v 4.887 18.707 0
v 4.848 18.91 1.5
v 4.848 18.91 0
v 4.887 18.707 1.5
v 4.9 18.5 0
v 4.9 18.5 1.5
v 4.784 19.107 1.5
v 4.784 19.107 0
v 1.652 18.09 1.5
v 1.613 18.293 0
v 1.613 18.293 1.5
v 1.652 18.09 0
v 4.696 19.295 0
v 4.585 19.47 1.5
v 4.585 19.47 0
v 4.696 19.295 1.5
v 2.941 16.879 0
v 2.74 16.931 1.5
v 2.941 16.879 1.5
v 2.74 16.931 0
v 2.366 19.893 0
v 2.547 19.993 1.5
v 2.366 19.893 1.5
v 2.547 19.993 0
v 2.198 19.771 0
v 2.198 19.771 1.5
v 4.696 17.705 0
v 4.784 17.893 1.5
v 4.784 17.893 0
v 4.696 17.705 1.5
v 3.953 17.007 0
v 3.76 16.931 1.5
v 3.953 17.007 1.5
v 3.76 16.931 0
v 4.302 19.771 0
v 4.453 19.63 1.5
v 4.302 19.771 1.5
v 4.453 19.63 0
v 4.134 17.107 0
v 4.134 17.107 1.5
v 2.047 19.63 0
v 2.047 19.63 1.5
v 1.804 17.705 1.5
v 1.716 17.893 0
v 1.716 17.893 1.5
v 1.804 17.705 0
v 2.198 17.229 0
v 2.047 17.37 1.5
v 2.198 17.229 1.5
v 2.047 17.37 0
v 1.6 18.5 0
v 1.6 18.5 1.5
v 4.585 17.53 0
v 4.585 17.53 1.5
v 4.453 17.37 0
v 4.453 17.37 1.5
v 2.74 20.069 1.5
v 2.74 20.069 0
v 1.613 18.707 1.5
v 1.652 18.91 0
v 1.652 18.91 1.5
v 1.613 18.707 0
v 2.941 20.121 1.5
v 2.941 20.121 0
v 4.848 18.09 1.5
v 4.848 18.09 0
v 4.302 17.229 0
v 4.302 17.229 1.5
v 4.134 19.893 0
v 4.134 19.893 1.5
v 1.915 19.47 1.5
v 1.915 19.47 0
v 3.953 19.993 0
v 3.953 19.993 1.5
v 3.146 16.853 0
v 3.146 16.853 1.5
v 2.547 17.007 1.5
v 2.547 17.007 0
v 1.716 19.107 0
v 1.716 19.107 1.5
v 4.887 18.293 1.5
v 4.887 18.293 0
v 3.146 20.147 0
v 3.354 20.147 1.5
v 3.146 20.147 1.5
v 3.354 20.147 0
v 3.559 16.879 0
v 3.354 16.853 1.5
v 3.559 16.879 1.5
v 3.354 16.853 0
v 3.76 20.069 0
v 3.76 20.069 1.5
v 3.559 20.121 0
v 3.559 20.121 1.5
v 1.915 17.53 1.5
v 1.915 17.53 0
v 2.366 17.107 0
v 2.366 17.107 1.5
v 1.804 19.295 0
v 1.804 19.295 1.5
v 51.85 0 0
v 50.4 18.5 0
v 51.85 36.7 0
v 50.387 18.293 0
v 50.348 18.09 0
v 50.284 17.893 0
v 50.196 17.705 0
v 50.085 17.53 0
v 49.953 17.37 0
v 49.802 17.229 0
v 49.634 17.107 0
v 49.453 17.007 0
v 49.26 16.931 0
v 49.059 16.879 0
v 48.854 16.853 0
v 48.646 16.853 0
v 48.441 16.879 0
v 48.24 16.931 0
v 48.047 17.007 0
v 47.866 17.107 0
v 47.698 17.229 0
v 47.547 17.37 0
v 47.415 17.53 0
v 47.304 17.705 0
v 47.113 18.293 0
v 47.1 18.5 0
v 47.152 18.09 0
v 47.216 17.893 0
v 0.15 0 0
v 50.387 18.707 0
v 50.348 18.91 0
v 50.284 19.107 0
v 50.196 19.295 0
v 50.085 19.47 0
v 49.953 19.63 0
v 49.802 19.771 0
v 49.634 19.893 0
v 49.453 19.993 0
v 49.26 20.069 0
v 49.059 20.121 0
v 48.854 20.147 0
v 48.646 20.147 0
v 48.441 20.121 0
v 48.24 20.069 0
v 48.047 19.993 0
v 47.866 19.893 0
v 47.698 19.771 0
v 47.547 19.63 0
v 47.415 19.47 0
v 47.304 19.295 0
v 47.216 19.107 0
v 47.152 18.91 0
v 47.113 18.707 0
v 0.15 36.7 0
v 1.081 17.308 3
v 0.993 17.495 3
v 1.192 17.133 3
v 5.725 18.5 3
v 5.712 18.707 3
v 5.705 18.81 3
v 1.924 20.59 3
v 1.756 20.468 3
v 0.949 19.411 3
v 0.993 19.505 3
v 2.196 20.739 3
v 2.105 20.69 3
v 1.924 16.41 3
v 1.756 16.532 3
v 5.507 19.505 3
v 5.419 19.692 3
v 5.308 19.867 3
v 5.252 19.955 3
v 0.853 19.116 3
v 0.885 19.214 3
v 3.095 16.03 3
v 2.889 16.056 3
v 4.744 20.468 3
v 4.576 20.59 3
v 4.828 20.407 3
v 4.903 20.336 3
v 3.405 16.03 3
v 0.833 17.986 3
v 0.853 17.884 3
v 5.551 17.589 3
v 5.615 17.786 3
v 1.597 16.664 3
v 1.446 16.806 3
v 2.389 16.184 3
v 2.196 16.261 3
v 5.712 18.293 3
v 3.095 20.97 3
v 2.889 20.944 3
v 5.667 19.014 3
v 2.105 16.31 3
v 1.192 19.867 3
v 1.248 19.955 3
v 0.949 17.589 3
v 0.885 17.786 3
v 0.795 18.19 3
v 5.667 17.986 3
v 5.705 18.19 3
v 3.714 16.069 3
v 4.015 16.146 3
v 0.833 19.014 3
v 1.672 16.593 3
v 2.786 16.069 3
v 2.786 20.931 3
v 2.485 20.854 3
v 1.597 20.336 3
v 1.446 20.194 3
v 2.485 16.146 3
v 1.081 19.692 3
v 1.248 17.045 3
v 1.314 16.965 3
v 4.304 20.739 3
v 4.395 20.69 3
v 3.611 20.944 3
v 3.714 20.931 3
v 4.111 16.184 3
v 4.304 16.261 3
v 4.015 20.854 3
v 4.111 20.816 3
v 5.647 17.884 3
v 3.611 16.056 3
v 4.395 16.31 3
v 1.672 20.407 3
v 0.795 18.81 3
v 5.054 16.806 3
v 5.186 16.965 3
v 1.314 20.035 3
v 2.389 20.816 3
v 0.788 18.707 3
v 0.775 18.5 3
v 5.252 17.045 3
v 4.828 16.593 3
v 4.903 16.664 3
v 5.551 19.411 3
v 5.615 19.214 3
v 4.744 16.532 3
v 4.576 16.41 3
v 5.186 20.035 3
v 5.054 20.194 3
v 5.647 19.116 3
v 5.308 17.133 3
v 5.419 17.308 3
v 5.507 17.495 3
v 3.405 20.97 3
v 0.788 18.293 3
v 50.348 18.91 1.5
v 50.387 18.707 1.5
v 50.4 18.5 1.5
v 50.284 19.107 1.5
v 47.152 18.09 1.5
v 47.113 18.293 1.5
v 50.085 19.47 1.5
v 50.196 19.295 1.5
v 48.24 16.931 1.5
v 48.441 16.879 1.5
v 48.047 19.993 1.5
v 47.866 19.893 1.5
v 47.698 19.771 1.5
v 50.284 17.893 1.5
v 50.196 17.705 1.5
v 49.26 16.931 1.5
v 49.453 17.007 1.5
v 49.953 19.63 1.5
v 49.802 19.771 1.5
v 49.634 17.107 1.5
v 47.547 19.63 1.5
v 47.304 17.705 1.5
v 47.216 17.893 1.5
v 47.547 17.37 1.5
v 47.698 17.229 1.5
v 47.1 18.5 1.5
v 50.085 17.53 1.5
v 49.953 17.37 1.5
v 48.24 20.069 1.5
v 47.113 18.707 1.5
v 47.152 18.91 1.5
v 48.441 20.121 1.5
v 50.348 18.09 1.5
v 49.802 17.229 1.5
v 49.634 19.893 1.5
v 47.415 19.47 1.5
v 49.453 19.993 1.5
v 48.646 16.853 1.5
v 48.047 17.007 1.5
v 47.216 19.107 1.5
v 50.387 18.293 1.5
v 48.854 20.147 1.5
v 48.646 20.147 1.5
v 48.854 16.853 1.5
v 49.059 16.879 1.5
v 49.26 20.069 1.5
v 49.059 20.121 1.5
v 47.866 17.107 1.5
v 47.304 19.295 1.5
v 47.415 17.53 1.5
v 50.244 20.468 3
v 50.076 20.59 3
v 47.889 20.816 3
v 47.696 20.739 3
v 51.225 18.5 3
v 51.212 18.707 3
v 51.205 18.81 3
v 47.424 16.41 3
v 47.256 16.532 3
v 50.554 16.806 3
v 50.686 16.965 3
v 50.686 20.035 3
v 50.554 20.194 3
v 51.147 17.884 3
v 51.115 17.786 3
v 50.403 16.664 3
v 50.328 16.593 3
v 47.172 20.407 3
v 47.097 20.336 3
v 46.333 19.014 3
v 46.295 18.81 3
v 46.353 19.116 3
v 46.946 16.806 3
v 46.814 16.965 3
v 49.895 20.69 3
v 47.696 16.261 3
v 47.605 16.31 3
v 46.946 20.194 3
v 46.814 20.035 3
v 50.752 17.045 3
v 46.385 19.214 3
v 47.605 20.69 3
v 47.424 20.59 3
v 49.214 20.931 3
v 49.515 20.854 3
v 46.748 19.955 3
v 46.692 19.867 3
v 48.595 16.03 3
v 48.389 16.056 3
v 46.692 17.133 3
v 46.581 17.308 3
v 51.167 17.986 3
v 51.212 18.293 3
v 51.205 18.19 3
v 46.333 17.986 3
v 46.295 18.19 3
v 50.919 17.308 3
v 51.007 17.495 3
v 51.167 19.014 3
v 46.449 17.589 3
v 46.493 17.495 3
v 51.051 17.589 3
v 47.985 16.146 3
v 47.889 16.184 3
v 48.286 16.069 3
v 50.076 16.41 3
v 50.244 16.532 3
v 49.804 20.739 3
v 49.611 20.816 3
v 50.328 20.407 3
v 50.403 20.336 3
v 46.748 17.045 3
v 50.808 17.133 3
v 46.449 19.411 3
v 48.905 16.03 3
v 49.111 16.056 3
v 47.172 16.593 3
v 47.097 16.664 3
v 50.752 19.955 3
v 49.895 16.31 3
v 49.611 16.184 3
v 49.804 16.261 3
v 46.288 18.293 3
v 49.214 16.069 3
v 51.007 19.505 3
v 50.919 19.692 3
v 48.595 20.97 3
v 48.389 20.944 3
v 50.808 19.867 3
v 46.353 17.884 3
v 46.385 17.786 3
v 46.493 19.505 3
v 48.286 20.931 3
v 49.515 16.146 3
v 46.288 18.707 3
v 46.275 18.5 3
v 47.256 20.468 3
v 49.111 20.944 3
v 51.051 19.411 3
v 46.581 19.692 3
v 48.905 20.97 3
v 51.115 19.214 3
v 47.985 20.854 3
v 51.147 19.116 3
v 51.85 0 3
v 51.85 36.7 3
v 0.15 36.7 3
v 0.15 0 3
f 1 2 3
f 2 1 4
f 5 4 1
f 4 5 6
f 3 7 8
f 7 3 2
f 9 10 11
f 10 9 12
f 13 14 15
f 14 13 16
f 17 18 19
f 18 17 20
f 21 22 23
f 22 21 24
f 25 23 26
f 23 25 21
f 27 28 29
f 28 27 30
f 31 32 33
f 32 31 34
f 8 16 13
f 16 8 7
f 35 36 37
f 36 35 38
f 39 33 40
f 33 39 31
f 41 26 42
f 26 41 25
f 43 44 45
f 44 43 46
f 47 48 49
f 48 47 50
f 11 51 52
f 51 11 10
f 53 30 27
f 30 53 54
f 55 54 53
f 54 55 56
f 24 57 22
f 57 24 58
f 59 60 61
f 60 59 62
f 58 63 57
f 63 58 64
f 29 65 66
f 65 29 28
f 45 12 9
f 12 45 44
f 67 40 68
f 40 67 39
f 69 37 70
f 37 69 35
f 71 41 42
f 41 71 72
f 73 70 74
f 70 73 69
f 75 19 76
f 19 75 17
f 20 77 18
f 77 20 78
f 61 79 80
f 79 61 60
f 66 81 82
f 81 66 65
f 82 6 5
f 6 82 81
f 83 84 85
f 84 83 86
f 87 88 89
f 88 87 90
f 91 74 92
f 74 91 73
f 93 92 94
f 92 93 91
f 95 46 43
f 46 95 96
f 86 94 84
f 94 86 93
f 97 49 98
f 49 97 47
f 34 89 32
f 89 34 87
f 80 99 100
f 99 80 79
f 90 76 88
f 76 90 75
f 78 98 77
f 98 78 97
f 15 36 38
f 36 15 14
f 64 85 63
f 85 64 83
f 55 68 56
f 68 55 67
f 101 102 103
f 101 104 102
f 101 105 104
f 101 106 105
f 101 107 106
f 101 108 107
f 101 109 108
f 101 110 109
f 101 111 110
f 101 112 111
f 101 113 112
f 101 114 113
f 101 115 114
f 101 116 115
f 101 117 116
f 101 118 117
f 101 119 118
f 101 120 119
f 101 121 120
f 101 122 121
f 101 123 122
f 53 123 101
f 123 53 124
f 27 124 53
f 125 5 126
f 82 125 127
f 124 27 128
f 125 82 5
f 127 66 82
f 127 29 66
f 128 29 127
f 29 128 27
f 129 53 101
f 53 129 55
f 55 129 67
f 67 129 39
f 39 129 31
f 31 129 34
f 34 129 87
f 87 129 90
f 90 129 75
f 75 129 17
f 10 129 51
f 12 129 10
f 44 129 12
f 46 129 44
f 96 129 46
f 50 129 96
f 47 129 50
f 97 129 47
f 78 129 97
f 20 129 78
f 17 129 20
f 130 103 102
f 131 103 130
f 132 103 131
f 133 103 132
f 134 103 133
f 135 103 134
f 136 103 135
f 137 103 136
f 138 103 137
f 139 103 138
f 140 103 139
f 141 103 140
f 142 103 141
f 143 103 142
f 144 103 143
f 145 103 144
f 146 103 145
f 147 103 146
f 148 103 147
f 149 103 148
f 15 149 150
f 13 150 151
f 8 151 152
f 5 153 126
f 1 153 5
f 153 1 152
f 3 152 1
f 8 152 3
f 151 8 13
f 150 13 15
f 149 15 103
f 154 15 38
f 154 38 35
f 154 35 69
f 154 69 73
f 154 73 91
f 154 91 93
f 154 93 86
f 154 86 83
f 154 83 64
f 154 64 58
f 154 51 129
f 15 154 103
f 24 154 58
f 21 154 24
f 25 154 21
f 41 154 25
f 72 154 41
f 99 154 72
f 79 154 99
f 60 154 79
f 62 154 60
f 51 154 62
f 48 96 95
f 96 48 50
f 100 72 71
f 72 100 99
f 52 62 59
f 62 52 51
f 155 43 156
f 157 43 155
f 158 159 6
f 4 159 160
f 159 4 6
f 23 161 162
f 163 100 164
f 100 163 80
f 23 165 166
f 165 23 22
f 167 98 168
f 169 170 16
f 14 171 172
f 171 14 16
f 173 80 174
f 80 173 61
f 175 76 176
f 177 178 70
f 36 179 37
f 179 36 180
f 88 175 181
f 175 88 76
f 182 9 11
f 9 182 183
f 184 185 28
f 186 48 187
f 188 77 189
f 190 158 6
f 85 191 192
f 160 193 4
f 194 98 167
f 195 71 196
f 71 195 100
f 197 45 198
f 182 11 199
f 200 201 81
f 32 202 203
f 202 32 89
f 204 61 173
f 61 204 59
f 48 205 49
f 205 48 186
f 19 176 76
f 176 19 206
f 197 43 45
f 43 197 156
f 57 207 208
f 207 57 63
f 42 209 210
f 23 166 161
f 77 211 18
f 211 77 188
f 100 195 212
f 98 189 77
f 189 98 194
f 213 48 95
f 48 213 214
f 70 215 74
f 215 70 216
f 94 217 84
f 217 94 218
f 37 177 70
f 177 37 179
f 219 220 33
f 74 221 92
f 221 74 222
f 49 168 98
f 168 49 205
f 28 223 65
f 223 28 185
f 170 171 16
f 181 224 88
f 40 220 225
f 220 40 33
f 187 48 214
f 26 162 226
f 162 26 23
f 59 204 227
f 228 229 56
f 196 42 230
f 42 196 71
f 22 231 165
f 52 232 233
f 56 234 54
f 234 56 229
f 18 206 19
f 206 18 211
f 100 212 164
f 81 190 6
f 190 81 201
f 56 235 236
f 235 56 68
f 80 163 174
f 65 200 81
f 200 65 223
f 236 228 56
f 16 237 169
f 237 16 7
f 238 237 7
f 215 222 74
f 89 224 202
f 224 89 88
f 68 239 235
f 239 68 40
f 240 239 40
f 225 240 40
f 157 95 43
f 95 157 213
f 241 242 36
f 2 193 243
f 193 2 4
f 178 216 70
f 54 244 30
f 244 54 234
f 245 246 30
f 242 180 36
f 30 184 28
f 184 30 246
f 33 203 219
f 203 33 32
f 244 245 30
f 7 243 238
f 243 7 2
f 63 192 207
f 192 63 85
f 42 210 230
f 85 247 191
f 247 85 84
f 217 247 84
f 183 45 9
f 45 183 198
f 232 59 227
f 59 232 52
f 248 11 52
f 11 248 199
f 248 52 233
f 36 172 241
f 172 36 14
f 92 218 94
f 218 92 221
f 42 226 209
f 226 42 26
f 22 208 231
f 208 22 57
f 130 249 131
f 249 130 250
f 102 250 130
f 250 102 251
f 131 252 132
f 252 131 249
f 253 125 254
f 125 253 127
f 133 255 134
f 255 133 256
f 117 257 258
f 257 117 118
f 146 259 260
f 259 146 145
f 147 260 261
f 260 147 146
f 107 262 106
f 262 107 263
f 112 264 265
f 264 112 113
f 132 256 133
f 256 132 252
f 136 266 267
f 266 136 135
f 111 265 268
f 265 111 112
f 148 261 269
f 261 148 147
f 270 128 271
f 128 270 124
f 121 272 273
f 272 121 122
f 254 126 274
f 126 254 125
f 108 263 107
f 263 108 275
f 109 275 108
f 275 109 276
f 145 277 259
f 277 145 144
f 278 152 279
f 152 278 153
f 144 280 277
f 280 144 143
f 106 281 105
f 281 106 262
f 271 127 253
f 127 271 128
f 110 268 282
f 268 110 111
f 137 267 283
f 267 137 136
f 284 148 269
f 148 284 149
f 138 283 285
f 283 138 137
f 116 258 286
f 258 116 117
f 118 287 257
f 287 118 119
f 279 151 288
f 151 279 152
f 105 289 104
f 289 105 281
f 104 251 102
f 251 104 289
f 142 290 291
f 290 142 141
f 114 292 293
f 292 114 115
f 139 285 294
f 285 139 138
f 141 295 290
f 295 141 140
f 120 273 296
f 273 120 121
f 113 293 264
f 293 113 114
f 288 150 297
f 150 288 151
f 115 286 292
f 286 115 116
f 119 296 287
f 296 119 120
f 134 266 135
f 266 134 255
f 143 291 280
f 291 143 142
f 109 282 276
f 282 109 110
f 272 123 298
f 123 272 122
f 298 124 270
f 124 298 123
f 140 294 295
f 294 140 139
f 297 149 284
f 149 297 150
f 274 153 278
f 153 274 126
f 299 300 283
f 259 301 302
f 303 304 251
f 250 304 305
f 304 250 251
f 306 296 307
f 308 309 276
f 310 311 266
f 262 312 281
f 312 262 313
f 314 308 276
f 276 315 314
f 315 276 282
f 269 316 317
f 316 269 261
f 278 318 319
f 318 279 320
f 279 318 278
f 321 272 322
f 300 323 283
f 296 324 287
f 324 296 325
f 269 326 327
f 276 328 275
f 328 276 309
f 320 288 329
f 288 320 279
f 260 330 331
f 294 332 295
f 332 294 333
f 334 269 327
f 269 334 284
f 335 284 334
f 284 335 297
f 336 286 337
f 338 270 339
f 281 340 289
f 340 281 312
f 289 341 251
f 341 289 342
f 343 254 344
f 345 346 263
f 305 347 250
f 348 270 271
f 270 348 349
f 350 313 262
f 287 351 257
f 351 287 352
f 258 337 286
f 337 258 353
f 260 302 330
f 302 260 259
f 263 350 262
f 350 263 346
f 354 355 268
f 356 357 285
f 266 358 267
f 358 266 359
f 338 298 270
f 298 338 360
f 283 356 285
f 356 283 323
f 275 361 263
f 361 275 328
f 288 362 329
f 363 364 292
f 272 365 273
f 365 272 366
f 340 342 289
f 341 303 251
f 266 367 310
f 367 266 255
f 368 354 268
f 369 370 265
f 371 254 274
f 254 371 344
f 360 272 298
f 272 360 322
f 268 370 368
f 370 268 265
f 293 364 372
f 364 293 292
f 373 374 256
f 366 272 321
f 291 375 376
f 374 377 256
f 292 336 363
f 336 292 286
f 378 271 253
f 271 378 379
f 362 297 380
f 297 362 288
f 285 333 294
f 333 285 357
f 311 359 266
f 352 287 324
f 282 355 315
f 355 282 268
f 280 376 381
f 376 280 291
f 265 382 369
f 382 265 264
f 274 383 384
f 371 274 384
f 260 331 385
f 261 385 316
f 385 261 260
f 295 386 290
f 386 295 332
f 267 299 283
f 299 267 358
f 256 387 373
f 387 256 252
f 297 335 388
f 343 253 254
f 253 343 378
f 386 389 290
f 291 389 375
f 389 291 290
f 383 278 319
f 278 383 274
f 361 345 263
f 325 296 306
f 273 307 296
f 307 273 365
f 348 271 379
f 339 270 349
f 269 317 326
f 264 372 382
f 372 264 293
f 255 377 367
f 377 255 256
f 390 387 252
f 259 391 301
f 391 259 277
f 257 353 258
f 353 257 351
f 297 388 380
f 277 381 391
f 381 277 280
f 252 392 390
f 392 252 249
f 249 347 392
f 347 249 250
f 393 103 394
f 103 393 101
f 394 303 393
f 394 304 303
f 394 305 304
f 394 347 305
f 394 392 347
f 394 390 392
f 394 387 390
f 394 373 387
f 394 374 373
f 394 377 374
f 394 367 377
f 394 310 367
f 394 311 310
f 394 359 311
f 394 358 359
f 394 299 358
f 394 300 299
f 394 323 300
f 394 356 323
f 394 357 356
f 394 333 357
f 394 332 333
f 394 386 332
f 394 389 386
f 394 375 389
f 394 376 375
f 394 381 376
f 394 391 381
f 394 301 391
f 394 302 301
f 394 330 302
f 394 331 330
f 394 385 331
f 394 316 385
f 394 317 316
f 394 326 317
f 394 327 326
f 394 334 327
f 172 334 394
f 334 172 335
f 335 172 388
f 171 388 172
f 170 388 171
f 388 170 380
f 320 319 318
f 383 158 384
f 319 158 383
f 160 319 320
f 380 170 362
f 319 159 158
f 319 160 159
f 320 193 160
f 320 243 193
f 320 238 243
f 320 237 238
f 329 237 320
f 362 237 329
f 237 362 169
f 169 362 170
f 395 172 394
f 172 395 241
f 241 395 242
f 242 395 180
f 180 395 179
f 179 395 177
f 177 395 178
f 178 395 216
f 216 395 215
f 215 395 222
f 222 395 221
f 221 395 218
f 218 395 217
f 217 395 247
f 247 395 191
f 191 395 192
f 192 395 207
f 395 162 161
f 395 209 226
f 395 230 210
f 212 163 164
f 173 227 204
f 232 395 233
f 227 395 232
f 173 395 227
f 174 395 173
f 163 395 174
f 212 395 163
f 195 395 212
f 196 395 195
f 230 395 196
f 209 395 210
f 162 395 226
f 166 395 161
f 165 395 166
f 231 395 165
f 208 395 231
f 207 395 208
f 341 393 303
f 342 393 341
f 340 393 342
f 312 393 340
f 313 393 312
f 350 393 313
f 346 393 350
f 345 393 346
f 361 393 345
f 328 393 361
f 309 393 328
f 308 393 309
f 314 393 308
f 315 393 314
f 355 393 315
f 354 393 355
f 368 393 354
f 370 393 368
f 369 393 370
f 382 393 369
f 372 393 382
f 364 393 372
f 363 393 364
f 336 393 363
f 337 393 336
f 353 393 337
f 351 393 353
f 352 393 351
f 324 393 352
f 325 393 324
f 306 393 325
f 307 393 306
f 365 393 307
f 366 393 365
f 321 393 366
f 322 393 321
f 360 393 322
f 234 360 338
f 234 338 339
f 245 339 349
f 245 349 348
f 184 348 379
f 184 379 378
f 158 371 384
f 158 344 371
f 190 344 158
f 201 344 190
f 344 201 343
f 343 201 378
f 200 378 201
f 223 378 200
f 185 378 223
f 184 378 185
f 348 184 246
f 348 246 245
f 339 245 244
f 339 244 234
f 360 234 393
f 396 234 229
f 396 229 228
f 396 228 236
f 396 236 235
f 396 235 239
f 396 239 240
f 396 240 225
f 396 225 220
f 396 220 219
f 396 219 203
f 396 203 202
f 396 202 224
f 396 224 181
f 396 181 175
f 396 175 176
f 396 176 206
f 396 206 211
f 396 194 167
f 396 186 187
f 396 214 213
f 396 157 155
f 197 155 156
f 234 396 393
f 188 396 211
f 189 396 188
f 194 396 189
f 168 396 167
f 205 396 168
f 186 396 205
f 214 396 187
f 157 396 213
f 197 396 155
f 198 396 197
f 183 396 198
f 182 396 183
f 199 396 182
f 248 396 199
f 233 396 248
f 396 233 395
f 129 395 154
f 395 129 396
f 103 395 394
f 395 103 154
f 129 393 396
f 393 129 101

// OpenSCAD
// file: global_constants.scad
$fn=50;

// Body
body_size=140;
body_size_diff=30;
cylinder_radius=15;
body_height=15;

wall_size=4;
wall_size_offset_x= (body_size*(wall_size/100))/2;
wall_size_offset_y= ((body_size+cylinder_radius)*(wall_size/100))/2;

// Anchors
anchor_outer_size=4.5;
anchor_inner_size=2.5;

anchor_inner_size_margin=0.4;

anchor_height=7;
anchor_height_margin=2;

anchor_top_y=-38;
anchor_bottom_y=-125;

body_left_anchor_x = -cylinder_radius + anchor_outer_size + anchor_outer_size - anchor_inner_size;

body_right_anchor_x = body_size + cylinder_radius - (anchor_outer_size + anchor_outer_size - anchor_inner_size);

// Lit
screw_size = 1.65;
screw_top_height = 1.5;

lit_height = 3;

lit_battery_x = 20;
lit_battery_y = -140;

lit_battery_x_size = 52;
lit_battery_y_size = 37;

battery_wall = lit_height;

battery_height = 15;

// Speaker
speaker_size=28.2;
speaker_size_y=31.2;
speaker_x=5;
speaker_y=-43;

// Screen
screen_size=32.2;
screen_x=58;
screen_y=-75;

// Power switch
power_switch_size_x=13.4;
power_switch_size_y=9.2;
power_switch_z=-power_switch_size_y;

// Buttons
button_size=12.5;
button_x_margin=5;
button_starting_x=3;

button_x_placement=button_size + button_x_margin;
button_y_placement=-100;
button_y_second_row=30;

confirm_button_x=body_size - button_size-2;
confirm_button_y=-60;

// Leds
led_size=2.6;
led_height=10;
// main file
include<global_constants.scad>;

cover_margin = 0.3;

difference(){
    translate([cover_margin/2,0,0]) cube([lit_battery_x_size - cover_margin,  lit_battery_y_size - cover_margin, lit_height]);
    
    // Left hole
    base_hole(anchor_outer_size - (anchor_inner_size/2));
    
    // Right hole
    base_hole(lit_battery_x_size - anchor_outer_size + (anchor_inner_size/2));

}

module base_hole(x){
    translate([x, lit_battery_y_size / 2, 0]) cylinder(lit_height, screw_size, screw_size);
    
    translate([x, lit_battery_y_size / 2, screw_top_height]) cylinder(lit_height, screw_size, screw_size*2);
}
